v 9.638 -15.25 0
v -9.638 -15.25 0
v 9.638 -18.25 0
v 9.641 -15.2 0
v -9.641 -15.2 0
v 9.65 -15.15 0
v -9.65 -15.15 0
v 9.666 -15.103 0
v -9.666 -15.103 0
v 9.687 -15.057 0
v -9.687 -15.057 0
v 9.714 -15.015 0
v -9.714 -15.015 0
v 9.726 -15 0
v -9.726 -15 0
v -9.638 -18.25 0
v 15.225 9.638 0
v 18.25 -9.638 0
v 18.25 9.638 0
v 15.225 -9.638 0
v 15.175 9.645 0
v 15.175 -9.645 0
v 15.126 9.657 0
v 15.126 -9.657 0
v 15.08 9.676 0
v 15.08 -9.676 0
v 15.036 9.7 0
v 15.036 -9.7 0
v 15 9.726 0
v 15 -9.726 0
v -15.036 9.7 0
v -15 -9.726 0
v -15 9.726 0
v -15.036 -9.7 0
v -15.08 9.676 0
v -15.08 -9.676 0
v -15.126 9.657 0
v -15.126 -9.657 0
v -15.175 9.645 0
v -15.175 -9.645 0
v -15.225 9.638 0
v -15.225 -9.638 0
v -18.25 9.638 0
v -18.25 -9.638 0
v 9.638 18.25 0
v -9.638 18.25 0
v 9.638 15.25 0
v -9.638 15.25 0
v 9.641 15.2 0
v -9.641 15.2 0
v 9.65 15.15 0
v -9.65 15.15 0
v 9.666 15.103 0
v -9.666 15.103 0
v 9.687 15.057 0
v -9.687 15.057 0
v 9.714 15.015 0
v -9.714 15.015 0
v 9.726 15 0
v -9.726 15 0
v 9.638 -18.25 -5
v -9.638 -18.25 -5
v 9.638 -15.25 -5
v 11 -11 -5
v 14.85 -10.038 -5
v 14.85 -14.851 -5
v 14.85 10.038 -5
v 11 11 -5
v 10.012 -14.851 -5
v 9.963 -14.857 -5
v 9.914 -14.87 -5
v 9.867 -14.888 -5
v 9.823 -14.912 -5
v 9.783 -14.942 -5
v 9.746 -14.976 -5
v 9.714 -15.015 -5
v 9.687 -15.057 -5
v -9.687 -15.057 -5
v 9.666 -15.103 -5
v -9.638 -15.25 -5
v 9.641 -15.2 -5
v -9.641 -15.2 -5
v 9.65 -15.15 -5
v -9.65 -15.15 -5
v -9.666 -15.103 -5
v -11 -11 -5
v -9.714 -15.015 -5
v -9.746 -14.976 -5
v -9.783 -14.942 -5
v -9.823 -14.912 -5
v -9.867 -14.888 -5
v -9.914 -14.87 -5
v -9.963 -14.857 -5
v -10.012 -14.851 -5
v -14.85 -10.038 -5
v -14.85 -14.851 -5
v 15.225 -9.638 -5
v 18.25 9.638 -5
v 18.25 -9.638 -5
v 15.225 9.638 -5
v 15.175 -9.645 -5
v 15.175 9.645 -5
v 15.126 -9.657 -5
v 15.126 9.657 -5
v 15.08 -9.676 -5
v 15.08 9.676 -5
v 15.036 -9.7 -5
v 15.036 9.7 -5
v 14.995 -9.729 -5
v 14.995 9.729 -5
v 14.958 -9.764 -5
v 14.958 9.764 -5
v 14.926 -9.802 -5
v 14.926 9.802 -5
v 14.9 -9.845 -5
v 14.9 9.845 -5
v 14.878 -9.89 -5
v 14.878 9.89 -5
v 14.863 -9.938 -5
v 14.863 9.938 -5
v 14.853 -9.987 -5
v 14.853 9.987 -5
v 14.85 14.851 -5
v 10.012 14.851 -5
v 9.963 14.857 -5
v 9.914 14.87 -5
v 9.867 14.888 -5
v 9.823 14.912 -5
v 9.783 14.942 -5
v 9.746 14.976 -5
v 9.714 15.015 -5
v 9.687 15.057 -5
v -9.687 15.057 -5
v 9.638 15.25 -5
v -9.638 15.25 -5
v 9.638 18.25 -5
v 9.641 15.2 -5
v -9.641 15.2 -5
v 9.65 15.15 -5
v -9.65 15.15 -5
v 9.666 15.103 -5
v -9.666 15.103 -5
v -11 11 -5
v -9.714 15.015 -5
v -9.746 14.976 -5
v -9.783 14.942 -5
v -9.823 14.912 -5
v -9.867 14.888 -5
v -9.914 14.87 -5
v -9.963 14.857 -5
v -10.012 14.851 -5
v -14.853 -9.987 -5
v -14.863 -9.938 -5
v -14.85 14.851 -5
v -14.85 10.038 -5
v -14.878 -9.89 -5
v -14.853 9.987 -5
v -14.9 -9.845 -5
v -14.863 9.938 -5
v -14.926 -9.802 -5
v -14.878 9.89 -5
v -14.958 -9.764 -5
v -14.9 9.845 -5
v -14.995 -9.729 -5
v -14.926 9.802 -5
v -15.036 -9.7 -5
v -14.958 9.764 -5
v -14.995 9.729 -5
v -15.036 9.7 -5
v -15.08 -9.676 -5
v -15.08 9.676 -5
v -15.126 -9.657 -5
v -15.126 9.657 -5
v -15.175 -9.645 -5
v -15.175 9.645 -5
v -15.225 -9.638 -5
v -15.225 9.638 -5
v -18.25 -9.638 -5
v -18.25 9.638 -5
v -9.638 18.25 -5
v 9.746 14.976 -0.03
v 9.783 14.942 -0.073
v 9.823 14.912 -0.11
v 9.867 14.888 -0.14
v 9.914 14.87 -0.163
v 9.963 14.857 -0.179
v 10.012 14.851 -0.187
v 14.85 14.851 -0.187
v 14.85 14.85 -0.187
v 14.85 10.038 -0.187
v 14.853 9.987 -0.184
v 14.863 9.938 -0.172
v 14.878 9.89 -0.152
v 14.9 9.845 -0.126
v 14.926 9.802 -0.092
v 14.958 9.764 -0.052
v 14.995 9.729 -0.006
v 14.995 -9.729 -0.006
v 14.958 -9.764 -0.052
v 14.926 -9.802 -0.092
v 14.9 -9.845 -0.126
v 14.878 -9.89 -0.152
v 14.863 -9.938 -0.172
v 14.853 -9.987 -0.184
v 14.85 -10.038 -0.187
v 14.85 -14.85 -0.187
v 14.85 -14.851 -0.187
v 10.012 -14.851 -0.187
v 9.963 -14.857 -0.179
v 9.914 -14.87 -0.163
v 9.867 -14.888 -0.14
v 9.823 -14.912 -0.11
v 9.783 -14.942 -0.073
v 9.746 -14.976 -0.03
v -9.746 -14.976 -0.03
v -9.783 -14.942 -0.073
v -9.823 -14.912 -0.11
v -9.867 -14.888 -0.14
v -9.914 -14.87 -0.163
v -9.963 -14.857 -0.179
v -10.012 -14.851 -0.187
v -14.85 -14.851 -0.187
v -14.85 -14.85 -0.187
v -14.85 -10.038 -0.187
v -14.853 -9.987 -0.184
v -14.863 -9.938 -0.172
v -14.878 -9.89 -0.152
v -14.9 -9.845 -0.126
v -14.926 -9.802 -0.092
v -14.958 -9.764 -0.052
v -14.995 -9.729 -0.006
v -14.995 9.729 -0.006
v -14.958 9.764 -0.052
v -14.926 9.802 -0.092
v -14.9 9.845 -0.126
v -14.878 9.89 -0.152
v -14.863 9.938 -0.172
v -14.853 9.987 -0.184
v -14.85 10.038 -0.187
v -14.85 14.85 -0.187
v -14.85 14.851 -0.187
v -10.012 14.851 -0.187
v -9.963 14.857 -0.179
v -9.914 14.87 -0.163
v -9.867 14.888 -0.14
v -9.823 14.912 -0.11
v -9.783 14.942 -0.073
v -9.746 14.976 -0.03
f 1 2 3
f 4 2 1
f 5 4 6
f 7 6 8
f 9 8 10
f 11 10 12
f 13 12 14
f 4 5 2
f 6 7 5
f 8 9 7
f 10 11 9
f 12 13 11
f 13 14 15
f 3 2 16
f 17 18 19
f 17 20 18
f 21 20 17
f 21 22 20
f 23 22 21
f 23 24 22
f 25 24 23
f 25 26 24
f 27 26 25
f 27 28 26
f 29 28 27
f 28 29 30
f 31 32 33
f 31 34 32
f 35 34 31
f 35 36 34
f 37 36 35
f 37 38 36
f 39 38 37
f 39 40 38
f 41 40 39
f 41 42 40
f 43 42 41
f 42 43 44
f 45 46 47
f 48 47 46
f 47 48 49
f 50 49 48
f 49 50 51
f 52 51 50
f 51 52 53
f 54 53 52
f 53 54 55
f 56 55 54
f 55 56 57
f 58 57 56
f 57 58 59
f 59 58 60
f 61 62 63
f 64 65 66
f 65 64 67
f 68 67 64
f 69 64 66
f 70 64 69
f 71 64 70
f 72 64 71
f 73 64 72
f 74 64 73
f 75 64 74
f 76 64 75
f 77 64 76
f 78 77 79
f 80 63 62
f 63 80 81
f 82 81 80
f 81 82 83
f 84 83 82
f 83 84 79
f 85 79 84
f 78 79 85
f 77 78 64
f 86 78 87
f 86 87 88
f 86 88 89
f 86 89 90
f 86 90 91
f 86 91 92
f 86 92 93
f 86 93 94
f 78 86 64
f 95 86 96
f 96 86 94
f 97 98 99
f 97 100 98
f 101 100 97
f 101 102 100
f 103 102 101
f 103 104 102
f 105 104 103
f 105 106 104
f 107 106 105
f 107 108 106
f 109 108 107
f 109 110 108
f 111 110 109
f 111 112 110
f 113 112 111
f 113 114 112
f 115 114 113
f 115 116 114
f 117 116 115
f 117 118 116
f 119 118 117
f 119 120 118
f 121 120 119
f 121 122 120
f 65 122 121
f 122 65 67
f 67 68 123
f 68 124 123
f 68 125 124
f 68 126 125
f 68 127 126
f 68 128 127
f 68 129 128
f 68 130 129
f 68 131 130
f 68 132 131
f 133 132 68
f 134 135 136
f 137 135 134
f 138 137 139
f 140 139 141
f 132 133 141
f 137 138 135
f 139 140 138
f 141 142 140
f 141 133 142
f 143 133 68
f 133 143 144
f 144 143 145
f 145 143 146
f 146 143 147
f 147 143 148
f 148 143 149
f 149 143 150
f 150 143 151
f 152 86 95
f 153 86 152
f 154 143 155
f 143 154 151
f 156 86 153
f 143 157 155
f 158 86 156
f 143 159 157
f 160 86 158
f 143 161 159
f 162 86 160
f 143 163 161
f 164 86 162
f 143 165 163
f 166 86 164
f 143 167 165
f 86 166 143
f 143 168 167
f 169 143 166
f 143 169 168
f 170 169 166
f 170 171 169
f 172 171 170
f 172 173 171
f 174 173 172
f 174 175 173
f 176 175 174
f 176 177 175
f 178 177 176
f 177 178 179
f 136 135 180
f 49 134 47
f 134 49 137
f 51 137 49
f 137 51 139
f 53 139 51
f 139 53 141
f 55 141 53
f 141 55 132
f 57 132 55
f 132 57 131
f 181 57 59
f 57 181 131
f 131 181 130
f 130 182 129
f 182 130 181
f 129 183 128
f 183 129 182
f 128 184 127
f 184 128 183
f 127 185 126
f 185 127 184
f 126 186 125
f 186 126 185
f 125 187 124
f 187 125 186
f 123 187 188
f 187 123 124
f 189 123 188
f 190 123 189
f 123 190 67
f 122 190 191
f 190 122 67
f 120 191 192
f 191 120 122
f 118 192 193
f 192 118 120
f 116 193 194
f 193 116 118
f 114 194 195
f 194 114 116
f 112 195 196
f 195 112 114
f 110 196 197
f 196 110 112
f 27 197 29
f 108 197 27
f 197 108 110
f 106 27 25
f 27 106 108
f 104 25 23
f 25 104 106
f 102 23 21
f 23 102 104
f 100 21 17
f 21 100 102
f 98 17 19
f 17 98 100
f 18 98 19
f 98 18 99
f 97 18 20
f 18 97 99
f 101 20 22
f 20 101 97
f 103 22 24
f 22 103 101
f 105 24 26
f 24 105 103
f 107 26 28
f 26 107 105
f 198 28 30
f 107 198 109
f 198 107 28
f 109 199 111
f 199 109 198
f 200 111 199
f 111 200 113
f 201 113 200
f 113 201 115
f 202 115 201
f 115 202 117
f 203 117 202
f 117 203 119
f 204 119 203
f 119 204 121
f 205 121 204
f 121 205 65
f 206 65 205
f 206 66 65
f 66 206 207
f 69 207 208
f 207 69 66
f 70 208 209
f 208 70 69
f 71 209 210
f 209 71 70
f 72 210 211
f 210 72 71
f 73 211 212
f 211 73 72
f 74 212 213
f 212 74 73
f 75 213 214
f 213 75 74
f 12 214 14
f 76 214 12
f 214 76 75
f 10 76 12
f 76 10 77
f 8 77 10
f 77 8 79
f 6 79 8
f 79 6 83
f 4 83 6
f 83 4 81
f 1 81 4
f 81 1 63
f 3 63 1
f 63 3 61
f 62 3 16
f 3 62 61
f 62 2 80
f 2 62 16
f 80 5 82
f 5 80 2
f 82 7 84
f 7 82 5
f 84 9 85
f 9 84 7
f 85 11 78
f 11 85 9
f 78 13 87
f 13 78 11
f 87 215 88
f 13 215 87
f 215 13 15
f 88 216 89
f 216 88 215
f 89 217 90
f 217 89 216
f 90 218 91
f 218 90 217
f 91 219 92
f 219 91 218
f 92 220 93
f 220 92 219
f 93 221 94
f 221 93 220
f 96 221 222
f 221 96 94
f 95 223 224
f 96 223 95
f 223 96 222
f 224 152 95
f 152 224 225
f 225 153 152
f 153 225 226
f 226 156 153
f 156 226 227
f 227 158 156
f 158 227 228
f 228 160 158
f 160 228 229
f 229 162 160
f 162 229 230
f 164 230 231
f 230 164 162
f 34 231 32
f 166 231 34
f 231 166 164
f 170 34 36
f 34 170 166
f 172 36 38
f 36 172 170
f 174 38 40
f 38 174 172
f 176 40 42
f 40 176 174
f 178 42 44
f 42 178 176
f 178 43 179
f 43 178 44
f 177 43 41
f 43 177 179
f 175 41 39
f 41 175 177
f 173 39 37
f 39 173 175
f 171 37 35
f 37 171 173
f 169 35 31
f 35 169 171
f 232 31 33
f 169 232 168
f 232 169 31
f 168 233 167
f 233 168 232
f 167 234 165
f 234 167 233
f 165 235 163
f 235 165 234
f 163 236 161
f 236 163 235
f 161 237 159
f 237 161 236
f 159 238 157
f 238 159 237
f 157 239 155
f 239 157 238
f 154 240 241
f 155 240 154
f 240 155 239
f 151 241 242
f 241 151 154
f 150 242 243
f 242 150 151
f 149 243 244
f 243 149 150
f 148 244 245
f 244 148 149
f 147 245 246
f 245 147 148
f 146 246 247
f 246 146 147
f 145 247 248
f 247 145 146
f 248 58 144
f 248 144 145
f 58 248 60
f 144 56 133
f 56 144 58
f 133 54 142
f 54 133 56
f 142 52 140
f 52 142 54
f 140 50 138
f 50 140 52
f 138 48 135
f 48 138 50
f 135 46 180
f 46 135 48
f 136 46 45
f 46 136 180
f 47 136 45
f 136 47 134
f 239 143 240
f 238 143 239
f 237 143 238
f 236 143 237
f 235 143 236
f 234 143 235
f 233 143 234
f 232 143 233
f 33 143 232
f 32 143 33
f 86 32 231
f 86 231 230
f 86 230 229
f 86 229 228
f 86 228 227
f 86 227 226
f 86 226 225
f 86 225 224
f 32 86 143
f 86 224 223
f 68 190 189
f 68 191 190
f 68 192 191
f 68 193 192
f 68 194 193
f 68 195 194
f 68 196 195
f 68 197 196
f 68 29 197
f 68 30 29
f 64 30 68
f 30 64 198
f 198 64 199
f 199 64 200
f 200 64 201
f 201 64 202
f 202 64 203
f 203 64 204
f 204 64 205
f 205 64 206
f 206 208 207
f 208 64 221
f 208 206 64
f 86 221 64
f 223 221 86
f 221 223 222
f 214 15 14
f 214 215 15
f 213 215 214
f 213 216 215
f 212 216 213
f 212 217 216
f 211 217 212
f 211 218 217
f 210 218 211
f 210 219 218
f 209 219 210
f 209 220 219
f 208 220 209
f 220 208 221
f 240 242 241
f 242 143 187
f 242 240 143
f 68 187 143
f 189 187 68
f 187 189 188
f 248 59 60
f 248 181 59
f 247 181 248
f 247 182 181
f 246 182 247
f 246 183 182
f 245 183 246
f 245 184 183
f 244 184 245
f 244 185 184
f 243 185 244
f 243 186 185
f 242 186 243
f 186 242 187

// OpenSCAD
// file: meta.scad
deviceFudge=0.5;//mm, fudge factor to account for printing inaccuracy, shrinkage
PCBThickness=1.6; //mm
pinRecepticalTop=5.5;//mm above pcb that the pin receptical extends
pinsHeight=pinRecepticalTop+4.2+2;//mm above pcb, fully extended
maxSubstrateThickness=3;//mm
wallT=3;//mm, wall thickness
PCBShelfW=0.6;//mm, the pcb sits on this
belowPBC=1;//mm extension below PCB
crownFraction=0.55;//fraction of each side length to subtract to make extension corners

capT = 5; //mm cap thickness

solidHeight=pinsHeight;//mm above pcb for solid wall
crownHeight=maxSubstrateThickness+0.5;//mm, corners extension above pin ends
totalHeight=belowPBC+PCBThickness+solidHeight+crownHeight;

module base ( xyDev ) {
    vDeviceDim=xyDev+deviceFudge;
    xyLen=vDeviceDim+wallT*2;
    difference(){
        cube([xyLen,xyLen,totalHeight],center = true);
        difference(){
            translate([0,0,belowPBC]) cube([vDeviceDim,vDeviceDim,totalHeight],center = true);
            chunk_width = 4;
            chunk_outdent = 0.4;
            chunk_height = 0.5;
            //these parts clip in the PCB
            translate([vDeviceDim/2-chunk_outdent,-chunk_width/2,-totalHeight/2+belowPBC+PCBThickness]) cube([xyLen,chunk_width,chunk_height],center = false);
            rotate([0,0,90]) translate([vDeviceDim/2-chunk_outdent,-chunk_width/2,-totalHeight/2+belowPBC+PCBThickness]) cube([xyLen,chunk_width,chunk_height],center = false);
            rotate([0,0,180]) translate([vDeviceDim/2-chunk_outdent,-chunk_width/2,-totalHeight/2+belowPBC+PCBThickness]) cube([xyLen,chunk_width,chunk_height],center = false);
            rotate([0,0,270]) translate([vDeviceDim/2-chunk_outdent,-chunk_width/2,-totalHeight/2+belowPBC+PCBThickness]) cube([xyLen,chunk_width,chunk_height],center = false);
            
        }
        cube([vDeviceDim-2*PCBShelfW,vDeviceDim-2*PCBShelfW,totalHeight+1],center = true);
        
        translate([0,xyLen/2,totalHeight/2+(crownHeight+1)/2-crownHeight]) cube([xyLen*crownFraction,xyLen,crownHeight+1],center = true);
        rotate([0,0,180]) translate([-xyLen*crownFraction/2,-xyLen/2,totalHeight/2-crownHeight]) rotate([0,90,0])  linear_extrude(height=xyLen*crownFraction) polygon([[0,0],[0,wallT],[(pinsHeight-pinRecepticalTop),wallT]]);
        
        rotate([0,0,90]) translate([0,xyLen/2,totalHeight/2+(crownHeight+1)/2-crownHeight]) cube([xyLen*crownFraction,xyLen,crownHeight+1],center = true);
        rotate([0,0,270]) translate([-xyLen*crownFraction/2,-xyLen/2,totalHeight/2-crownHeight]) rotate([0,90,0])  linear_extrude(height=xyLen*crownFraction) polygon([[0,0],[0,wallT],[(pinsHeight-pinRecepticalTop),wallT]]);
        
        rotate([0,0,180]) translate([0,xyLen/2,totalHeight/2+(crownHeight+1)/2-crownHeight]) cube([xyLen*crownFraction,xyLen,crownHeight+1],center = true);
        translate([-xyLen*crownFraction/2,-xyLen/2,totalHeight/2-crownHeight]) rotate([0,90,0])  linear_extrude(height=xyLen*crownFraction) polygon([[0,0],[0,wallT],[(pinsHeight-pinRecepticalTop),wallT]]);
        
        rotate([0,0,270]) translate([0,xyLen/2,totalHeight/2+(crownHeight+1)/2-crownHeight]) cube([xyLen*crownFraction,xyLen,crownHeight+1],center = true);
        rotate([0,0,90]) translate([-xyLen*crownFraction/2,-xyLen/2,totalHeight/2-crownHeight]) rotate([0,90,0])  linear_extrude(height=xyLen*crownFraction) polygon([[0,0],[0,wallT],[(pinsHeight-pinRecepticalTop),wallT]]);
    }
}
// main file
include <meta.scad>;

$fn=50;
capFit=0.4; //mm, trace a circle of this radius around the crown pieces to define the cap cutouts
springs_length = 15; //mm
springs_thickness = 1; //mm

module cap(deviceDim, springs=false, clips=false){
    vDeviceDim=deviceDim+deviceFudge;
    xyLen=vDeviceDim+wallT*2;
    
    capX = xyLen;
    capY = xyLen;
    
    windowDim = deviceDim-4*2;
    difference(){
        linear_extrude(height=capT){
            difference(){
                square([capX,capY], center=true);
                minkowski(){
                  projection(cut = true) translate([0,0,-totalHeight/2+1]) base(deviceDim);
                  circle(capFit,center=true);
                }
            }
        }
        
        linear_extrude(height=capT,scale=windowDim/deviceDim){
            square([deviceDim,deviceDim], center=true);
        }
        if (springs){
            cube_offset = deviceDim/2-springs_length/2-capFit+deviceFudge/2-springs_thickness;
            translate ([cube_offset,cube_offset,0]) cube([springs_length,springs_length,3*capT],center=true);
            translate ([-cube_offset,-cube_offset,0]) cube([springs_length,springs_length,3*capT],center=true);
            translate ([cube_offset,-cube_offset,0]) cube([springs_length,springs_length,3*capT],center=true);
            translate ([-cube_offset,cube_offset,0]) cube([springs_length,springs_length,3*capT],center=true);
        }
    }
}

//rotate([180,0,0]) cap(25.146, springs=false);
//rotate([180,0,0]) cap(28, springs=false);
rotate([180,0,0]) cap(30, springs=false);
